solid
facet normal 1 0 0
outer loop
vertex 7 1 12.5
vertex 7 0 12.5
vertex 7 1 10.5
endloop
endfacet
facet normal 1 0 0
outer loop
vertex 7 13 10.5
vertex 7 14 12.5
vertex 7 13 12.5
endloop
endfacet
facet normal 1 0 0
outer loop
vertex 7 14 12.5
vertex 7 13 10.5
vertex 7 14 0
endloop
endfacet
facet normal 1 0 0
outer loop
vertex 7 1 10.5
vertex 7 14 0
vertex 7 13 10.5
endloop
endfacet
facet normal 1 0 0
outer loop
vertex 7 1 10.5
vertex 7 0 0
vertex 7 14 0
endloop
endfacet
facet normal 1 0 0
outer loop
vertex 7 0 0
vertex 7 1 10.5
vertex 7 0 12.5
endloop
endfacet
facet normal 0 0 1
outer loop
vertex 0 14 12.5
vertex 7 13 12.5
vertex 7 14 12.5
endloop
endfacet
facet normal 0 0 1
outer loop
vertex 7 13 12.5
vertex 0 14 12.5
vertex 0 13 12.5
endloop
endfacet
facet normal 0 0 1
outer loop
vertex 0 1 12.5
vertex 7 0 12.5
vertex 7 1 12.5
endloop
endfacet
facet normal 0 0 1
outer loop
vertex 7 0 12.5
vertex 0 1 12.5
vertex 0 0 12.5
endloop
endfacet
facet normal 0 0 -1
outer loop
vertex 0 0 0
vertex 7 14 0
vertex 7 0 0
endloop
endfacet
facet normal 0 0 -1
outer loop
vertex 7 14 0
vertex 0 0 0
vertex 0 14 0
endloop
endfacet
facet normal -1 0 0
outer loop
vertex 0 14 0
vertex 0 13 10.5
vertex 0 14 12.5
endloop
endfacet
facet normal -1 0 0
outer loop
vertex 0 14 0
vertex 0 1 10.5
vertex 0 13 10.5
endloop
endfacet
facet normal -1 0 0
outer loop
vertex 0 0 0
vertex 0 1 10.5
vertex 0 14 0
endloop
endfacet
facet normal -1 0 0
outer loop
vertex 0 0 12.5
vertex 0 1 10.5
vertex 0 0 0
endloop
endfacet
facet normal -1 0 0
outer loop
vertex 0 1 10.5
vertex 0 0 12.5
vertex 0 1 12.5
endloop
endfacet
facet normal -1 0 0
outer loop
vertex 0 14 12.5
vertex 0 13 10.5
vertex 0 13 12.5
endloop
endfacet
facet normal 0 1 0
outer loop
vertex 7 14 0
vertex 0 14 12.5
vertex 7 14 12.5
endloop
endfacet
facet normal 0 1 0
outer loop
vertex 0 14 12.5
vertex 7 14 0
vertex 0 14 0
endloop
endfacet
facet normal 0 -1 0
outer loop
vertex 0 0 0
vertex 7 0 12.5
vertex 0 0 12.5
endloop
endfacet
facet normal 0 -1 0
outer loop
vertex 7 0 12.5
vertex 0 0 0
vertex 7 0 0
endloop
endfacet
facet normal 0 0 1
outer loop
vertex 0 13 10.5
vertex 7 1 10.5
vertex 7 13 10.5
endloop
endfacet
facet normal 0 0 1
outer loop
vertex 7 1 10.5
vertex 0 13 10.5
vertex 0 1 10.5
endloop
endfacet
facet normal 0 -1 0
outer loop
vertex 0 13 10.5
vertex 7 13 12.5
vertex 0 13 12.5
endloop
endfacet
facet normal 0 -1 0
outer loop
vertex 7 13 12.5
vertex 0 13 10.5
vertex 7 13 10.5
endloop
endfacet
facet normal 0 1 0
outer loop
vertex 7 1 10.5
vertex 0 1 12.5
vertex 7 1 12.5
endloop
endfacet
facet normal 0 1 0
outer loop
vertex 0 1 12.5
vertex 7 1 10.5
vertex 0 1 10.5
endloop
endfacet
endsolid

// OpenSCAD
difference(){cube([7,14,12.5]);translate([0,1,10.5])cube([15,12,5]);}
